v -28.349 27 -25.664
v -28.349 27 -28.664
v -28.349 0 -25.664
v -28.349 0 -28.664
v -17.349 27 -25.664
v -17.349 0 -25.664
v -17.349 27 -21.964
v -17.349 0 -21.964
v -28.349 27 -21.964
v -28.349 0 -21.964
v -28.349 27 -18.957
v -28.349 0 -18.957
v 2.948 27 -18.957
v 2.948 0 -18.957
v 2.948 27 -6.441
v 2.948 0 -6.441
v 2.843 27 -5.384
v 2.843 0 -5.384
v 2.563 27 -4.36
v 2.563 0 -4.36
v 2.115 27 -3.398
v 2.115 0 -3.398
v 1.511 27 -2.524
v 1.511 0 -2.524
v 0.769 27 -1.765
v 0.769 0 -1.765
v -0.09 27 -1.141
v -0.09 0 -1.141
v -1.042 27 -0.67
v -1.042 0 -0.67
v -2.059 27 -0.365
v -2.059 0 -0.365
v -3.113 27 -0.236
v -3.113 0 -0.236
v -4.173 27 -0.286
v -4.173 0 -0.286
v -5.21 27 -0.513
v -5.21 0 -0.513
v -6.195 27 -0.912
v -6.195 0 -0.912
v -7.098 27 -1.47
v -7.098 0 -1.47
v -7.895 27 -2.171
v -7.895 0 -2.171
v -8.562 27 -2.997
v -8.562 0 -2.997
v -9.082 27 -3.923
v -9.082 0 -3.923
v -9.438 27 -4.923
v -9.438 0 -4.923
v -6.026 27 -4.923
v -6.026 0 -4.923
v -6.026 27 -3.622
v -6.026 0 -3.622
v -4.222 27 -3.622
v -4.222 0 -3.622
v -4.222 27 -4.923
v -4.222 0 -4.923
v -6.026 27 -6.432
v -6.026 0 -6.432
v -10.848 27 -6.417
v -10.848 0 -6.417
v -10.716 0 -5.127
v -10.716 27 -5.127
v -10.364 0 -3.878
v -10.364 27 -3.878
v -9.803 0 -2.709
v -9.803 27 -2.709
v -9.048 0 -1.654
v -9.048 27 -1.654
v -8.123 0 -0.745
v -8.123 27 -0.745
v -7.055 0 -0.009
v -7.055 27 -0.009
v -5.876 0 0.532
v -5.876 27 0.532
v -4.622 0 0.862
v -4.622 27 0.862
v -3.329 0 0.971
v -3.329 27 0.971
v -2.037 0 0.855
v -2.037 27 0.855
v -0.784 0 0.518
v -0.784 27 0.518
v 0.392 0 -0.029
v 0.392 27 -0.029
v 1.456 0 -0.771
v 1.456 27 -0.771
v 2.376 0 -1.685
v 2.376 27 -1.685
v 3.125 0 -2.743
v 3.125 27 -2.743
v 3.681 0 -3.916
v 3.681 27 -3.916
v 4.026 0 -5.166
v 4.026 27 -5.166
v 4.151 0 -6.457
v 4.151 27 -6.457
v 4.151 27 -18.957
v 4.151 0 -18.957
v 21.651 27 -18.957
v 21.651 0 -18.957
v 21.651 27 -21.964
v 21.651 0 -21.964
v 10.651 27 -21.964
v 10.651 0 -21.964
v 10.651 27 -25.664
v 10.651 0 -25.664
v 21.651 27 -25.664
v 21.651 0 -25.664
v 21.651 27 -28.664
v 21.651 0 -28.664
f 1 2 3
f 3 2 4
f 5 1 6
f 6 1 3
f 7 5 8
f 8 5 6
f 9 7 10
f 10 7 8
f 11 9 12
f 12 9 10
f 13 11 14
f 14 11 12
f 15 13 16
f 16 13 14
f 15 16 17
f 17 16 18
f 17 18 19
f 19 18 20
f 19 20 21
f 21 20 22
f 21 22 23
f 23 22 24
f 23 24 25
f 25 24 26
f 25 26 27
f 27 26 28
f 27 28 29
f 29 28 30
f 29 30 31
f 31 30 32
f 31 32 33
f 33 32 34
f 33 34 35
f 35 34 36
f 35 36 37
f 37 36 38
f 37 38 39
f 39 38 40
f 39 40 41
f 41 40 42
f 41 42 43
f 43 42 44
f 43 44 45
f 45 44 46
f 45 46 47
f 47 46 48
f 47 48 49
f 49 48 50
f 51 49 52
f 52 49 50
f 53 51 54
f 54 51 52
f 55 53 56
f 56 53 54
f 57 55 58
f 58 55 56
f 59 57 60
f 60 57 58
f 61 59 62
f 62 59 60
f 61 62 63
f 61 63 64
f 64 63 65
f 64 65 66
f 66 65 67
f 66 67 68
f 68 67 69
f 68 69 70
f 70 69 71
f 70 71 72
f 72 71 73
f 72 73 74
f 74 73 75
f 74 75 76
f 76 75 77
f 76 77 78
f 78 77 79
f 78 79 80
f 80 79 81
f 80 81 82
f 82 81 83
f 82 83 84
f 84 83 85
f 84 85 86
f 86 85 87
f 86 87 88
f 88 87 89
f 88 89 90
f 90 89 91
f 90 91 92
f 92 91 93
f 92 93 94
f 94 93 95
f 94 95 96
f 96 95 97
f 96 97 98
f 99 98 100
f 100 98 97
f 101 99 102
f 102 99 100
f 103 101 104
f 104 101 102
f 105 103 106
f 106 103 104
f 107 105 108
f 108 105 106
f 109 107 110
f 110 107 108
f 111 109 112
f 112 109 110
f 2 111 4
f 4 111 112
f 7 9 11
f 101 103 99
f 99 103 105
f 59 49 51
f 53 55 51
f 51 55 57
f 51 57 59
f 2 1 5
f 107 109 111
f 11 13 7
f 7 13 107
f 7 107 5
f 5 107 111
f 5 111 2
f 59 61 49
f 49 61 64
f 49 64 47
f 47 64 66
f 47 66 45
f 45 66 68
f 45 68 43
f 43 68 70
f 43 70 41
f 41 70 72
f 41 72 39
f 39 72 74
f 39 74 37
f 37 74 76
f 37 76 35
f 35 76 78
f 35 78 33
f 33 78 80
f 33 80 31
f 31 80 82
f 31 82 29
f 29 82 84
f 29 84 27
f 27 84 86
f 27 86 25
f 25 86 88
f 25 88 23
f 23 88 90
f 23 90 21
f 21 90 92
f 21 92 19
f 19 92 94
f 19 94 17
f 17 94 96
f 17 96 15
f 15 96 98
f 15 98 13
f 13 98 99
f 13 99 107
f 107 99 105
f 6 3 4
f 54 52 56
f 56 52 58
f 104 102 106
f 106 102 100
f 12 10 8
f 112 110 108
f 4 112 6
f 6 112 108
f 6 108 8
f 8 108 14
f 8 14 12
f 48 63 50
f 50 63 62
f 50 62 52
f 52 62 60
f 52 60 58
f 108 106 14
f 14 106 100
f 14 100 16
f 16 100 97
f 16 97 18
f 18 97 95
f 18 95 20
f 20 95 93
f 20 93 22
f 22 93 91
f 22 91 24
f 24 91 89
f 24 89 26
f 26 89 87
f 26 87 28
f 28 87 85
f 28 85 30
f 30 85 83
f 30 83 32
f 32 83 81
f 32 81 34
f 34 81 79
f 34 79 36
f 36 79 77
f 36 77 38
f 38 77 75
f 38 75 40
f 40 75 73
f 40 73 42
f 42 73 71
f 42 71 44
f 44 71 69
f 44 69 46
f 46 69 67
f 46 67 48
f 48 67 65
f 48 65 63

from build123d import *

# Parameters (mm, degrees)
BOSS_EXTRUDE2_DEPTH = 27


with BuildPart() as part:
    # Sketch2 → Boss-Extrude2 (new body)
    with BuildSketch(Plane(origin=(0, 0, 0), x_dir=(1, 0, 0), z_dir=(0, 1, 0))):
        with BuildLine():
            Line((-28.349494605, 21.964136687), (-17.349494605, 21.964136687))
            Line((-17.349494605, 21.964136687), (-17.349494605, 25.664136687))
            Line((-17.349494605, 25.664136687), (-28.349494605, 25.664136687))
            Line((-28.349494605, 25.664136687), (-28.349494605, 28.664136687))
            Line((-28.349494605, 28.664136687), (21.650505395, 28.664136687))
            Line((21.650505395, 28.664136687), (21.650505395, 25.664136687))
            Line((21.650505395, 25.664136687), (10.650505395, 25.664136687))
            Line((10.650505395, 25.664136687), (10.650505395, 21.964136687))
            Line((10.650505395, 21.964136687), (21.650505395, 21.964136687))
            Line((21.650505395, 21.964136687), (21.650505395, 18.957031621))
            Line((21.650505395, 18.957031621), (4.150505395, 18.957031621))
            Line((4.150505395, 18.957031621), (4.150505395, 6.457031621))
            ThreePointArc((4.150505395, 6.457031621), (-3.329004451, -0.970516956), (-10.847714263, 6.41734797))
            Line((-10.847714263, 6.41734797), (-6.026180838, 6.432389281))
            Line((-6.026180838, 6.432389281), (-4.222493535, 4.923226245))
            Line((-4.222493535, 4.923226245), (-4.222493535, 3.622157415))
            Line((-4.222493535, 3.622157415), (-6.026180838, 3.622157415))
            Line((-6.026180838, 3.622157415), (-6.026180838, 4.923226245))
            Line((-6.026180838, 4.923226245), (-9.437915177, 4.923226245))
            ThreePointArc((-9.437915177, 4.923226245), (-2.58302441, 0.278615253), (2.947813029, 6.440739557))
            Line((2.947813029, 6.440739557), (2.947813029, 18.957031621))
            Line((2.947813029, 18.957031621), (-28.349494605, 18.957031621))
            Line((-28.349494605, 18.957031621), (-28.349494605, 21.964136687))
        make_face()
    extrude(amount=BOSS_EXTRUDE2_DEPTH)


solid = part.part
